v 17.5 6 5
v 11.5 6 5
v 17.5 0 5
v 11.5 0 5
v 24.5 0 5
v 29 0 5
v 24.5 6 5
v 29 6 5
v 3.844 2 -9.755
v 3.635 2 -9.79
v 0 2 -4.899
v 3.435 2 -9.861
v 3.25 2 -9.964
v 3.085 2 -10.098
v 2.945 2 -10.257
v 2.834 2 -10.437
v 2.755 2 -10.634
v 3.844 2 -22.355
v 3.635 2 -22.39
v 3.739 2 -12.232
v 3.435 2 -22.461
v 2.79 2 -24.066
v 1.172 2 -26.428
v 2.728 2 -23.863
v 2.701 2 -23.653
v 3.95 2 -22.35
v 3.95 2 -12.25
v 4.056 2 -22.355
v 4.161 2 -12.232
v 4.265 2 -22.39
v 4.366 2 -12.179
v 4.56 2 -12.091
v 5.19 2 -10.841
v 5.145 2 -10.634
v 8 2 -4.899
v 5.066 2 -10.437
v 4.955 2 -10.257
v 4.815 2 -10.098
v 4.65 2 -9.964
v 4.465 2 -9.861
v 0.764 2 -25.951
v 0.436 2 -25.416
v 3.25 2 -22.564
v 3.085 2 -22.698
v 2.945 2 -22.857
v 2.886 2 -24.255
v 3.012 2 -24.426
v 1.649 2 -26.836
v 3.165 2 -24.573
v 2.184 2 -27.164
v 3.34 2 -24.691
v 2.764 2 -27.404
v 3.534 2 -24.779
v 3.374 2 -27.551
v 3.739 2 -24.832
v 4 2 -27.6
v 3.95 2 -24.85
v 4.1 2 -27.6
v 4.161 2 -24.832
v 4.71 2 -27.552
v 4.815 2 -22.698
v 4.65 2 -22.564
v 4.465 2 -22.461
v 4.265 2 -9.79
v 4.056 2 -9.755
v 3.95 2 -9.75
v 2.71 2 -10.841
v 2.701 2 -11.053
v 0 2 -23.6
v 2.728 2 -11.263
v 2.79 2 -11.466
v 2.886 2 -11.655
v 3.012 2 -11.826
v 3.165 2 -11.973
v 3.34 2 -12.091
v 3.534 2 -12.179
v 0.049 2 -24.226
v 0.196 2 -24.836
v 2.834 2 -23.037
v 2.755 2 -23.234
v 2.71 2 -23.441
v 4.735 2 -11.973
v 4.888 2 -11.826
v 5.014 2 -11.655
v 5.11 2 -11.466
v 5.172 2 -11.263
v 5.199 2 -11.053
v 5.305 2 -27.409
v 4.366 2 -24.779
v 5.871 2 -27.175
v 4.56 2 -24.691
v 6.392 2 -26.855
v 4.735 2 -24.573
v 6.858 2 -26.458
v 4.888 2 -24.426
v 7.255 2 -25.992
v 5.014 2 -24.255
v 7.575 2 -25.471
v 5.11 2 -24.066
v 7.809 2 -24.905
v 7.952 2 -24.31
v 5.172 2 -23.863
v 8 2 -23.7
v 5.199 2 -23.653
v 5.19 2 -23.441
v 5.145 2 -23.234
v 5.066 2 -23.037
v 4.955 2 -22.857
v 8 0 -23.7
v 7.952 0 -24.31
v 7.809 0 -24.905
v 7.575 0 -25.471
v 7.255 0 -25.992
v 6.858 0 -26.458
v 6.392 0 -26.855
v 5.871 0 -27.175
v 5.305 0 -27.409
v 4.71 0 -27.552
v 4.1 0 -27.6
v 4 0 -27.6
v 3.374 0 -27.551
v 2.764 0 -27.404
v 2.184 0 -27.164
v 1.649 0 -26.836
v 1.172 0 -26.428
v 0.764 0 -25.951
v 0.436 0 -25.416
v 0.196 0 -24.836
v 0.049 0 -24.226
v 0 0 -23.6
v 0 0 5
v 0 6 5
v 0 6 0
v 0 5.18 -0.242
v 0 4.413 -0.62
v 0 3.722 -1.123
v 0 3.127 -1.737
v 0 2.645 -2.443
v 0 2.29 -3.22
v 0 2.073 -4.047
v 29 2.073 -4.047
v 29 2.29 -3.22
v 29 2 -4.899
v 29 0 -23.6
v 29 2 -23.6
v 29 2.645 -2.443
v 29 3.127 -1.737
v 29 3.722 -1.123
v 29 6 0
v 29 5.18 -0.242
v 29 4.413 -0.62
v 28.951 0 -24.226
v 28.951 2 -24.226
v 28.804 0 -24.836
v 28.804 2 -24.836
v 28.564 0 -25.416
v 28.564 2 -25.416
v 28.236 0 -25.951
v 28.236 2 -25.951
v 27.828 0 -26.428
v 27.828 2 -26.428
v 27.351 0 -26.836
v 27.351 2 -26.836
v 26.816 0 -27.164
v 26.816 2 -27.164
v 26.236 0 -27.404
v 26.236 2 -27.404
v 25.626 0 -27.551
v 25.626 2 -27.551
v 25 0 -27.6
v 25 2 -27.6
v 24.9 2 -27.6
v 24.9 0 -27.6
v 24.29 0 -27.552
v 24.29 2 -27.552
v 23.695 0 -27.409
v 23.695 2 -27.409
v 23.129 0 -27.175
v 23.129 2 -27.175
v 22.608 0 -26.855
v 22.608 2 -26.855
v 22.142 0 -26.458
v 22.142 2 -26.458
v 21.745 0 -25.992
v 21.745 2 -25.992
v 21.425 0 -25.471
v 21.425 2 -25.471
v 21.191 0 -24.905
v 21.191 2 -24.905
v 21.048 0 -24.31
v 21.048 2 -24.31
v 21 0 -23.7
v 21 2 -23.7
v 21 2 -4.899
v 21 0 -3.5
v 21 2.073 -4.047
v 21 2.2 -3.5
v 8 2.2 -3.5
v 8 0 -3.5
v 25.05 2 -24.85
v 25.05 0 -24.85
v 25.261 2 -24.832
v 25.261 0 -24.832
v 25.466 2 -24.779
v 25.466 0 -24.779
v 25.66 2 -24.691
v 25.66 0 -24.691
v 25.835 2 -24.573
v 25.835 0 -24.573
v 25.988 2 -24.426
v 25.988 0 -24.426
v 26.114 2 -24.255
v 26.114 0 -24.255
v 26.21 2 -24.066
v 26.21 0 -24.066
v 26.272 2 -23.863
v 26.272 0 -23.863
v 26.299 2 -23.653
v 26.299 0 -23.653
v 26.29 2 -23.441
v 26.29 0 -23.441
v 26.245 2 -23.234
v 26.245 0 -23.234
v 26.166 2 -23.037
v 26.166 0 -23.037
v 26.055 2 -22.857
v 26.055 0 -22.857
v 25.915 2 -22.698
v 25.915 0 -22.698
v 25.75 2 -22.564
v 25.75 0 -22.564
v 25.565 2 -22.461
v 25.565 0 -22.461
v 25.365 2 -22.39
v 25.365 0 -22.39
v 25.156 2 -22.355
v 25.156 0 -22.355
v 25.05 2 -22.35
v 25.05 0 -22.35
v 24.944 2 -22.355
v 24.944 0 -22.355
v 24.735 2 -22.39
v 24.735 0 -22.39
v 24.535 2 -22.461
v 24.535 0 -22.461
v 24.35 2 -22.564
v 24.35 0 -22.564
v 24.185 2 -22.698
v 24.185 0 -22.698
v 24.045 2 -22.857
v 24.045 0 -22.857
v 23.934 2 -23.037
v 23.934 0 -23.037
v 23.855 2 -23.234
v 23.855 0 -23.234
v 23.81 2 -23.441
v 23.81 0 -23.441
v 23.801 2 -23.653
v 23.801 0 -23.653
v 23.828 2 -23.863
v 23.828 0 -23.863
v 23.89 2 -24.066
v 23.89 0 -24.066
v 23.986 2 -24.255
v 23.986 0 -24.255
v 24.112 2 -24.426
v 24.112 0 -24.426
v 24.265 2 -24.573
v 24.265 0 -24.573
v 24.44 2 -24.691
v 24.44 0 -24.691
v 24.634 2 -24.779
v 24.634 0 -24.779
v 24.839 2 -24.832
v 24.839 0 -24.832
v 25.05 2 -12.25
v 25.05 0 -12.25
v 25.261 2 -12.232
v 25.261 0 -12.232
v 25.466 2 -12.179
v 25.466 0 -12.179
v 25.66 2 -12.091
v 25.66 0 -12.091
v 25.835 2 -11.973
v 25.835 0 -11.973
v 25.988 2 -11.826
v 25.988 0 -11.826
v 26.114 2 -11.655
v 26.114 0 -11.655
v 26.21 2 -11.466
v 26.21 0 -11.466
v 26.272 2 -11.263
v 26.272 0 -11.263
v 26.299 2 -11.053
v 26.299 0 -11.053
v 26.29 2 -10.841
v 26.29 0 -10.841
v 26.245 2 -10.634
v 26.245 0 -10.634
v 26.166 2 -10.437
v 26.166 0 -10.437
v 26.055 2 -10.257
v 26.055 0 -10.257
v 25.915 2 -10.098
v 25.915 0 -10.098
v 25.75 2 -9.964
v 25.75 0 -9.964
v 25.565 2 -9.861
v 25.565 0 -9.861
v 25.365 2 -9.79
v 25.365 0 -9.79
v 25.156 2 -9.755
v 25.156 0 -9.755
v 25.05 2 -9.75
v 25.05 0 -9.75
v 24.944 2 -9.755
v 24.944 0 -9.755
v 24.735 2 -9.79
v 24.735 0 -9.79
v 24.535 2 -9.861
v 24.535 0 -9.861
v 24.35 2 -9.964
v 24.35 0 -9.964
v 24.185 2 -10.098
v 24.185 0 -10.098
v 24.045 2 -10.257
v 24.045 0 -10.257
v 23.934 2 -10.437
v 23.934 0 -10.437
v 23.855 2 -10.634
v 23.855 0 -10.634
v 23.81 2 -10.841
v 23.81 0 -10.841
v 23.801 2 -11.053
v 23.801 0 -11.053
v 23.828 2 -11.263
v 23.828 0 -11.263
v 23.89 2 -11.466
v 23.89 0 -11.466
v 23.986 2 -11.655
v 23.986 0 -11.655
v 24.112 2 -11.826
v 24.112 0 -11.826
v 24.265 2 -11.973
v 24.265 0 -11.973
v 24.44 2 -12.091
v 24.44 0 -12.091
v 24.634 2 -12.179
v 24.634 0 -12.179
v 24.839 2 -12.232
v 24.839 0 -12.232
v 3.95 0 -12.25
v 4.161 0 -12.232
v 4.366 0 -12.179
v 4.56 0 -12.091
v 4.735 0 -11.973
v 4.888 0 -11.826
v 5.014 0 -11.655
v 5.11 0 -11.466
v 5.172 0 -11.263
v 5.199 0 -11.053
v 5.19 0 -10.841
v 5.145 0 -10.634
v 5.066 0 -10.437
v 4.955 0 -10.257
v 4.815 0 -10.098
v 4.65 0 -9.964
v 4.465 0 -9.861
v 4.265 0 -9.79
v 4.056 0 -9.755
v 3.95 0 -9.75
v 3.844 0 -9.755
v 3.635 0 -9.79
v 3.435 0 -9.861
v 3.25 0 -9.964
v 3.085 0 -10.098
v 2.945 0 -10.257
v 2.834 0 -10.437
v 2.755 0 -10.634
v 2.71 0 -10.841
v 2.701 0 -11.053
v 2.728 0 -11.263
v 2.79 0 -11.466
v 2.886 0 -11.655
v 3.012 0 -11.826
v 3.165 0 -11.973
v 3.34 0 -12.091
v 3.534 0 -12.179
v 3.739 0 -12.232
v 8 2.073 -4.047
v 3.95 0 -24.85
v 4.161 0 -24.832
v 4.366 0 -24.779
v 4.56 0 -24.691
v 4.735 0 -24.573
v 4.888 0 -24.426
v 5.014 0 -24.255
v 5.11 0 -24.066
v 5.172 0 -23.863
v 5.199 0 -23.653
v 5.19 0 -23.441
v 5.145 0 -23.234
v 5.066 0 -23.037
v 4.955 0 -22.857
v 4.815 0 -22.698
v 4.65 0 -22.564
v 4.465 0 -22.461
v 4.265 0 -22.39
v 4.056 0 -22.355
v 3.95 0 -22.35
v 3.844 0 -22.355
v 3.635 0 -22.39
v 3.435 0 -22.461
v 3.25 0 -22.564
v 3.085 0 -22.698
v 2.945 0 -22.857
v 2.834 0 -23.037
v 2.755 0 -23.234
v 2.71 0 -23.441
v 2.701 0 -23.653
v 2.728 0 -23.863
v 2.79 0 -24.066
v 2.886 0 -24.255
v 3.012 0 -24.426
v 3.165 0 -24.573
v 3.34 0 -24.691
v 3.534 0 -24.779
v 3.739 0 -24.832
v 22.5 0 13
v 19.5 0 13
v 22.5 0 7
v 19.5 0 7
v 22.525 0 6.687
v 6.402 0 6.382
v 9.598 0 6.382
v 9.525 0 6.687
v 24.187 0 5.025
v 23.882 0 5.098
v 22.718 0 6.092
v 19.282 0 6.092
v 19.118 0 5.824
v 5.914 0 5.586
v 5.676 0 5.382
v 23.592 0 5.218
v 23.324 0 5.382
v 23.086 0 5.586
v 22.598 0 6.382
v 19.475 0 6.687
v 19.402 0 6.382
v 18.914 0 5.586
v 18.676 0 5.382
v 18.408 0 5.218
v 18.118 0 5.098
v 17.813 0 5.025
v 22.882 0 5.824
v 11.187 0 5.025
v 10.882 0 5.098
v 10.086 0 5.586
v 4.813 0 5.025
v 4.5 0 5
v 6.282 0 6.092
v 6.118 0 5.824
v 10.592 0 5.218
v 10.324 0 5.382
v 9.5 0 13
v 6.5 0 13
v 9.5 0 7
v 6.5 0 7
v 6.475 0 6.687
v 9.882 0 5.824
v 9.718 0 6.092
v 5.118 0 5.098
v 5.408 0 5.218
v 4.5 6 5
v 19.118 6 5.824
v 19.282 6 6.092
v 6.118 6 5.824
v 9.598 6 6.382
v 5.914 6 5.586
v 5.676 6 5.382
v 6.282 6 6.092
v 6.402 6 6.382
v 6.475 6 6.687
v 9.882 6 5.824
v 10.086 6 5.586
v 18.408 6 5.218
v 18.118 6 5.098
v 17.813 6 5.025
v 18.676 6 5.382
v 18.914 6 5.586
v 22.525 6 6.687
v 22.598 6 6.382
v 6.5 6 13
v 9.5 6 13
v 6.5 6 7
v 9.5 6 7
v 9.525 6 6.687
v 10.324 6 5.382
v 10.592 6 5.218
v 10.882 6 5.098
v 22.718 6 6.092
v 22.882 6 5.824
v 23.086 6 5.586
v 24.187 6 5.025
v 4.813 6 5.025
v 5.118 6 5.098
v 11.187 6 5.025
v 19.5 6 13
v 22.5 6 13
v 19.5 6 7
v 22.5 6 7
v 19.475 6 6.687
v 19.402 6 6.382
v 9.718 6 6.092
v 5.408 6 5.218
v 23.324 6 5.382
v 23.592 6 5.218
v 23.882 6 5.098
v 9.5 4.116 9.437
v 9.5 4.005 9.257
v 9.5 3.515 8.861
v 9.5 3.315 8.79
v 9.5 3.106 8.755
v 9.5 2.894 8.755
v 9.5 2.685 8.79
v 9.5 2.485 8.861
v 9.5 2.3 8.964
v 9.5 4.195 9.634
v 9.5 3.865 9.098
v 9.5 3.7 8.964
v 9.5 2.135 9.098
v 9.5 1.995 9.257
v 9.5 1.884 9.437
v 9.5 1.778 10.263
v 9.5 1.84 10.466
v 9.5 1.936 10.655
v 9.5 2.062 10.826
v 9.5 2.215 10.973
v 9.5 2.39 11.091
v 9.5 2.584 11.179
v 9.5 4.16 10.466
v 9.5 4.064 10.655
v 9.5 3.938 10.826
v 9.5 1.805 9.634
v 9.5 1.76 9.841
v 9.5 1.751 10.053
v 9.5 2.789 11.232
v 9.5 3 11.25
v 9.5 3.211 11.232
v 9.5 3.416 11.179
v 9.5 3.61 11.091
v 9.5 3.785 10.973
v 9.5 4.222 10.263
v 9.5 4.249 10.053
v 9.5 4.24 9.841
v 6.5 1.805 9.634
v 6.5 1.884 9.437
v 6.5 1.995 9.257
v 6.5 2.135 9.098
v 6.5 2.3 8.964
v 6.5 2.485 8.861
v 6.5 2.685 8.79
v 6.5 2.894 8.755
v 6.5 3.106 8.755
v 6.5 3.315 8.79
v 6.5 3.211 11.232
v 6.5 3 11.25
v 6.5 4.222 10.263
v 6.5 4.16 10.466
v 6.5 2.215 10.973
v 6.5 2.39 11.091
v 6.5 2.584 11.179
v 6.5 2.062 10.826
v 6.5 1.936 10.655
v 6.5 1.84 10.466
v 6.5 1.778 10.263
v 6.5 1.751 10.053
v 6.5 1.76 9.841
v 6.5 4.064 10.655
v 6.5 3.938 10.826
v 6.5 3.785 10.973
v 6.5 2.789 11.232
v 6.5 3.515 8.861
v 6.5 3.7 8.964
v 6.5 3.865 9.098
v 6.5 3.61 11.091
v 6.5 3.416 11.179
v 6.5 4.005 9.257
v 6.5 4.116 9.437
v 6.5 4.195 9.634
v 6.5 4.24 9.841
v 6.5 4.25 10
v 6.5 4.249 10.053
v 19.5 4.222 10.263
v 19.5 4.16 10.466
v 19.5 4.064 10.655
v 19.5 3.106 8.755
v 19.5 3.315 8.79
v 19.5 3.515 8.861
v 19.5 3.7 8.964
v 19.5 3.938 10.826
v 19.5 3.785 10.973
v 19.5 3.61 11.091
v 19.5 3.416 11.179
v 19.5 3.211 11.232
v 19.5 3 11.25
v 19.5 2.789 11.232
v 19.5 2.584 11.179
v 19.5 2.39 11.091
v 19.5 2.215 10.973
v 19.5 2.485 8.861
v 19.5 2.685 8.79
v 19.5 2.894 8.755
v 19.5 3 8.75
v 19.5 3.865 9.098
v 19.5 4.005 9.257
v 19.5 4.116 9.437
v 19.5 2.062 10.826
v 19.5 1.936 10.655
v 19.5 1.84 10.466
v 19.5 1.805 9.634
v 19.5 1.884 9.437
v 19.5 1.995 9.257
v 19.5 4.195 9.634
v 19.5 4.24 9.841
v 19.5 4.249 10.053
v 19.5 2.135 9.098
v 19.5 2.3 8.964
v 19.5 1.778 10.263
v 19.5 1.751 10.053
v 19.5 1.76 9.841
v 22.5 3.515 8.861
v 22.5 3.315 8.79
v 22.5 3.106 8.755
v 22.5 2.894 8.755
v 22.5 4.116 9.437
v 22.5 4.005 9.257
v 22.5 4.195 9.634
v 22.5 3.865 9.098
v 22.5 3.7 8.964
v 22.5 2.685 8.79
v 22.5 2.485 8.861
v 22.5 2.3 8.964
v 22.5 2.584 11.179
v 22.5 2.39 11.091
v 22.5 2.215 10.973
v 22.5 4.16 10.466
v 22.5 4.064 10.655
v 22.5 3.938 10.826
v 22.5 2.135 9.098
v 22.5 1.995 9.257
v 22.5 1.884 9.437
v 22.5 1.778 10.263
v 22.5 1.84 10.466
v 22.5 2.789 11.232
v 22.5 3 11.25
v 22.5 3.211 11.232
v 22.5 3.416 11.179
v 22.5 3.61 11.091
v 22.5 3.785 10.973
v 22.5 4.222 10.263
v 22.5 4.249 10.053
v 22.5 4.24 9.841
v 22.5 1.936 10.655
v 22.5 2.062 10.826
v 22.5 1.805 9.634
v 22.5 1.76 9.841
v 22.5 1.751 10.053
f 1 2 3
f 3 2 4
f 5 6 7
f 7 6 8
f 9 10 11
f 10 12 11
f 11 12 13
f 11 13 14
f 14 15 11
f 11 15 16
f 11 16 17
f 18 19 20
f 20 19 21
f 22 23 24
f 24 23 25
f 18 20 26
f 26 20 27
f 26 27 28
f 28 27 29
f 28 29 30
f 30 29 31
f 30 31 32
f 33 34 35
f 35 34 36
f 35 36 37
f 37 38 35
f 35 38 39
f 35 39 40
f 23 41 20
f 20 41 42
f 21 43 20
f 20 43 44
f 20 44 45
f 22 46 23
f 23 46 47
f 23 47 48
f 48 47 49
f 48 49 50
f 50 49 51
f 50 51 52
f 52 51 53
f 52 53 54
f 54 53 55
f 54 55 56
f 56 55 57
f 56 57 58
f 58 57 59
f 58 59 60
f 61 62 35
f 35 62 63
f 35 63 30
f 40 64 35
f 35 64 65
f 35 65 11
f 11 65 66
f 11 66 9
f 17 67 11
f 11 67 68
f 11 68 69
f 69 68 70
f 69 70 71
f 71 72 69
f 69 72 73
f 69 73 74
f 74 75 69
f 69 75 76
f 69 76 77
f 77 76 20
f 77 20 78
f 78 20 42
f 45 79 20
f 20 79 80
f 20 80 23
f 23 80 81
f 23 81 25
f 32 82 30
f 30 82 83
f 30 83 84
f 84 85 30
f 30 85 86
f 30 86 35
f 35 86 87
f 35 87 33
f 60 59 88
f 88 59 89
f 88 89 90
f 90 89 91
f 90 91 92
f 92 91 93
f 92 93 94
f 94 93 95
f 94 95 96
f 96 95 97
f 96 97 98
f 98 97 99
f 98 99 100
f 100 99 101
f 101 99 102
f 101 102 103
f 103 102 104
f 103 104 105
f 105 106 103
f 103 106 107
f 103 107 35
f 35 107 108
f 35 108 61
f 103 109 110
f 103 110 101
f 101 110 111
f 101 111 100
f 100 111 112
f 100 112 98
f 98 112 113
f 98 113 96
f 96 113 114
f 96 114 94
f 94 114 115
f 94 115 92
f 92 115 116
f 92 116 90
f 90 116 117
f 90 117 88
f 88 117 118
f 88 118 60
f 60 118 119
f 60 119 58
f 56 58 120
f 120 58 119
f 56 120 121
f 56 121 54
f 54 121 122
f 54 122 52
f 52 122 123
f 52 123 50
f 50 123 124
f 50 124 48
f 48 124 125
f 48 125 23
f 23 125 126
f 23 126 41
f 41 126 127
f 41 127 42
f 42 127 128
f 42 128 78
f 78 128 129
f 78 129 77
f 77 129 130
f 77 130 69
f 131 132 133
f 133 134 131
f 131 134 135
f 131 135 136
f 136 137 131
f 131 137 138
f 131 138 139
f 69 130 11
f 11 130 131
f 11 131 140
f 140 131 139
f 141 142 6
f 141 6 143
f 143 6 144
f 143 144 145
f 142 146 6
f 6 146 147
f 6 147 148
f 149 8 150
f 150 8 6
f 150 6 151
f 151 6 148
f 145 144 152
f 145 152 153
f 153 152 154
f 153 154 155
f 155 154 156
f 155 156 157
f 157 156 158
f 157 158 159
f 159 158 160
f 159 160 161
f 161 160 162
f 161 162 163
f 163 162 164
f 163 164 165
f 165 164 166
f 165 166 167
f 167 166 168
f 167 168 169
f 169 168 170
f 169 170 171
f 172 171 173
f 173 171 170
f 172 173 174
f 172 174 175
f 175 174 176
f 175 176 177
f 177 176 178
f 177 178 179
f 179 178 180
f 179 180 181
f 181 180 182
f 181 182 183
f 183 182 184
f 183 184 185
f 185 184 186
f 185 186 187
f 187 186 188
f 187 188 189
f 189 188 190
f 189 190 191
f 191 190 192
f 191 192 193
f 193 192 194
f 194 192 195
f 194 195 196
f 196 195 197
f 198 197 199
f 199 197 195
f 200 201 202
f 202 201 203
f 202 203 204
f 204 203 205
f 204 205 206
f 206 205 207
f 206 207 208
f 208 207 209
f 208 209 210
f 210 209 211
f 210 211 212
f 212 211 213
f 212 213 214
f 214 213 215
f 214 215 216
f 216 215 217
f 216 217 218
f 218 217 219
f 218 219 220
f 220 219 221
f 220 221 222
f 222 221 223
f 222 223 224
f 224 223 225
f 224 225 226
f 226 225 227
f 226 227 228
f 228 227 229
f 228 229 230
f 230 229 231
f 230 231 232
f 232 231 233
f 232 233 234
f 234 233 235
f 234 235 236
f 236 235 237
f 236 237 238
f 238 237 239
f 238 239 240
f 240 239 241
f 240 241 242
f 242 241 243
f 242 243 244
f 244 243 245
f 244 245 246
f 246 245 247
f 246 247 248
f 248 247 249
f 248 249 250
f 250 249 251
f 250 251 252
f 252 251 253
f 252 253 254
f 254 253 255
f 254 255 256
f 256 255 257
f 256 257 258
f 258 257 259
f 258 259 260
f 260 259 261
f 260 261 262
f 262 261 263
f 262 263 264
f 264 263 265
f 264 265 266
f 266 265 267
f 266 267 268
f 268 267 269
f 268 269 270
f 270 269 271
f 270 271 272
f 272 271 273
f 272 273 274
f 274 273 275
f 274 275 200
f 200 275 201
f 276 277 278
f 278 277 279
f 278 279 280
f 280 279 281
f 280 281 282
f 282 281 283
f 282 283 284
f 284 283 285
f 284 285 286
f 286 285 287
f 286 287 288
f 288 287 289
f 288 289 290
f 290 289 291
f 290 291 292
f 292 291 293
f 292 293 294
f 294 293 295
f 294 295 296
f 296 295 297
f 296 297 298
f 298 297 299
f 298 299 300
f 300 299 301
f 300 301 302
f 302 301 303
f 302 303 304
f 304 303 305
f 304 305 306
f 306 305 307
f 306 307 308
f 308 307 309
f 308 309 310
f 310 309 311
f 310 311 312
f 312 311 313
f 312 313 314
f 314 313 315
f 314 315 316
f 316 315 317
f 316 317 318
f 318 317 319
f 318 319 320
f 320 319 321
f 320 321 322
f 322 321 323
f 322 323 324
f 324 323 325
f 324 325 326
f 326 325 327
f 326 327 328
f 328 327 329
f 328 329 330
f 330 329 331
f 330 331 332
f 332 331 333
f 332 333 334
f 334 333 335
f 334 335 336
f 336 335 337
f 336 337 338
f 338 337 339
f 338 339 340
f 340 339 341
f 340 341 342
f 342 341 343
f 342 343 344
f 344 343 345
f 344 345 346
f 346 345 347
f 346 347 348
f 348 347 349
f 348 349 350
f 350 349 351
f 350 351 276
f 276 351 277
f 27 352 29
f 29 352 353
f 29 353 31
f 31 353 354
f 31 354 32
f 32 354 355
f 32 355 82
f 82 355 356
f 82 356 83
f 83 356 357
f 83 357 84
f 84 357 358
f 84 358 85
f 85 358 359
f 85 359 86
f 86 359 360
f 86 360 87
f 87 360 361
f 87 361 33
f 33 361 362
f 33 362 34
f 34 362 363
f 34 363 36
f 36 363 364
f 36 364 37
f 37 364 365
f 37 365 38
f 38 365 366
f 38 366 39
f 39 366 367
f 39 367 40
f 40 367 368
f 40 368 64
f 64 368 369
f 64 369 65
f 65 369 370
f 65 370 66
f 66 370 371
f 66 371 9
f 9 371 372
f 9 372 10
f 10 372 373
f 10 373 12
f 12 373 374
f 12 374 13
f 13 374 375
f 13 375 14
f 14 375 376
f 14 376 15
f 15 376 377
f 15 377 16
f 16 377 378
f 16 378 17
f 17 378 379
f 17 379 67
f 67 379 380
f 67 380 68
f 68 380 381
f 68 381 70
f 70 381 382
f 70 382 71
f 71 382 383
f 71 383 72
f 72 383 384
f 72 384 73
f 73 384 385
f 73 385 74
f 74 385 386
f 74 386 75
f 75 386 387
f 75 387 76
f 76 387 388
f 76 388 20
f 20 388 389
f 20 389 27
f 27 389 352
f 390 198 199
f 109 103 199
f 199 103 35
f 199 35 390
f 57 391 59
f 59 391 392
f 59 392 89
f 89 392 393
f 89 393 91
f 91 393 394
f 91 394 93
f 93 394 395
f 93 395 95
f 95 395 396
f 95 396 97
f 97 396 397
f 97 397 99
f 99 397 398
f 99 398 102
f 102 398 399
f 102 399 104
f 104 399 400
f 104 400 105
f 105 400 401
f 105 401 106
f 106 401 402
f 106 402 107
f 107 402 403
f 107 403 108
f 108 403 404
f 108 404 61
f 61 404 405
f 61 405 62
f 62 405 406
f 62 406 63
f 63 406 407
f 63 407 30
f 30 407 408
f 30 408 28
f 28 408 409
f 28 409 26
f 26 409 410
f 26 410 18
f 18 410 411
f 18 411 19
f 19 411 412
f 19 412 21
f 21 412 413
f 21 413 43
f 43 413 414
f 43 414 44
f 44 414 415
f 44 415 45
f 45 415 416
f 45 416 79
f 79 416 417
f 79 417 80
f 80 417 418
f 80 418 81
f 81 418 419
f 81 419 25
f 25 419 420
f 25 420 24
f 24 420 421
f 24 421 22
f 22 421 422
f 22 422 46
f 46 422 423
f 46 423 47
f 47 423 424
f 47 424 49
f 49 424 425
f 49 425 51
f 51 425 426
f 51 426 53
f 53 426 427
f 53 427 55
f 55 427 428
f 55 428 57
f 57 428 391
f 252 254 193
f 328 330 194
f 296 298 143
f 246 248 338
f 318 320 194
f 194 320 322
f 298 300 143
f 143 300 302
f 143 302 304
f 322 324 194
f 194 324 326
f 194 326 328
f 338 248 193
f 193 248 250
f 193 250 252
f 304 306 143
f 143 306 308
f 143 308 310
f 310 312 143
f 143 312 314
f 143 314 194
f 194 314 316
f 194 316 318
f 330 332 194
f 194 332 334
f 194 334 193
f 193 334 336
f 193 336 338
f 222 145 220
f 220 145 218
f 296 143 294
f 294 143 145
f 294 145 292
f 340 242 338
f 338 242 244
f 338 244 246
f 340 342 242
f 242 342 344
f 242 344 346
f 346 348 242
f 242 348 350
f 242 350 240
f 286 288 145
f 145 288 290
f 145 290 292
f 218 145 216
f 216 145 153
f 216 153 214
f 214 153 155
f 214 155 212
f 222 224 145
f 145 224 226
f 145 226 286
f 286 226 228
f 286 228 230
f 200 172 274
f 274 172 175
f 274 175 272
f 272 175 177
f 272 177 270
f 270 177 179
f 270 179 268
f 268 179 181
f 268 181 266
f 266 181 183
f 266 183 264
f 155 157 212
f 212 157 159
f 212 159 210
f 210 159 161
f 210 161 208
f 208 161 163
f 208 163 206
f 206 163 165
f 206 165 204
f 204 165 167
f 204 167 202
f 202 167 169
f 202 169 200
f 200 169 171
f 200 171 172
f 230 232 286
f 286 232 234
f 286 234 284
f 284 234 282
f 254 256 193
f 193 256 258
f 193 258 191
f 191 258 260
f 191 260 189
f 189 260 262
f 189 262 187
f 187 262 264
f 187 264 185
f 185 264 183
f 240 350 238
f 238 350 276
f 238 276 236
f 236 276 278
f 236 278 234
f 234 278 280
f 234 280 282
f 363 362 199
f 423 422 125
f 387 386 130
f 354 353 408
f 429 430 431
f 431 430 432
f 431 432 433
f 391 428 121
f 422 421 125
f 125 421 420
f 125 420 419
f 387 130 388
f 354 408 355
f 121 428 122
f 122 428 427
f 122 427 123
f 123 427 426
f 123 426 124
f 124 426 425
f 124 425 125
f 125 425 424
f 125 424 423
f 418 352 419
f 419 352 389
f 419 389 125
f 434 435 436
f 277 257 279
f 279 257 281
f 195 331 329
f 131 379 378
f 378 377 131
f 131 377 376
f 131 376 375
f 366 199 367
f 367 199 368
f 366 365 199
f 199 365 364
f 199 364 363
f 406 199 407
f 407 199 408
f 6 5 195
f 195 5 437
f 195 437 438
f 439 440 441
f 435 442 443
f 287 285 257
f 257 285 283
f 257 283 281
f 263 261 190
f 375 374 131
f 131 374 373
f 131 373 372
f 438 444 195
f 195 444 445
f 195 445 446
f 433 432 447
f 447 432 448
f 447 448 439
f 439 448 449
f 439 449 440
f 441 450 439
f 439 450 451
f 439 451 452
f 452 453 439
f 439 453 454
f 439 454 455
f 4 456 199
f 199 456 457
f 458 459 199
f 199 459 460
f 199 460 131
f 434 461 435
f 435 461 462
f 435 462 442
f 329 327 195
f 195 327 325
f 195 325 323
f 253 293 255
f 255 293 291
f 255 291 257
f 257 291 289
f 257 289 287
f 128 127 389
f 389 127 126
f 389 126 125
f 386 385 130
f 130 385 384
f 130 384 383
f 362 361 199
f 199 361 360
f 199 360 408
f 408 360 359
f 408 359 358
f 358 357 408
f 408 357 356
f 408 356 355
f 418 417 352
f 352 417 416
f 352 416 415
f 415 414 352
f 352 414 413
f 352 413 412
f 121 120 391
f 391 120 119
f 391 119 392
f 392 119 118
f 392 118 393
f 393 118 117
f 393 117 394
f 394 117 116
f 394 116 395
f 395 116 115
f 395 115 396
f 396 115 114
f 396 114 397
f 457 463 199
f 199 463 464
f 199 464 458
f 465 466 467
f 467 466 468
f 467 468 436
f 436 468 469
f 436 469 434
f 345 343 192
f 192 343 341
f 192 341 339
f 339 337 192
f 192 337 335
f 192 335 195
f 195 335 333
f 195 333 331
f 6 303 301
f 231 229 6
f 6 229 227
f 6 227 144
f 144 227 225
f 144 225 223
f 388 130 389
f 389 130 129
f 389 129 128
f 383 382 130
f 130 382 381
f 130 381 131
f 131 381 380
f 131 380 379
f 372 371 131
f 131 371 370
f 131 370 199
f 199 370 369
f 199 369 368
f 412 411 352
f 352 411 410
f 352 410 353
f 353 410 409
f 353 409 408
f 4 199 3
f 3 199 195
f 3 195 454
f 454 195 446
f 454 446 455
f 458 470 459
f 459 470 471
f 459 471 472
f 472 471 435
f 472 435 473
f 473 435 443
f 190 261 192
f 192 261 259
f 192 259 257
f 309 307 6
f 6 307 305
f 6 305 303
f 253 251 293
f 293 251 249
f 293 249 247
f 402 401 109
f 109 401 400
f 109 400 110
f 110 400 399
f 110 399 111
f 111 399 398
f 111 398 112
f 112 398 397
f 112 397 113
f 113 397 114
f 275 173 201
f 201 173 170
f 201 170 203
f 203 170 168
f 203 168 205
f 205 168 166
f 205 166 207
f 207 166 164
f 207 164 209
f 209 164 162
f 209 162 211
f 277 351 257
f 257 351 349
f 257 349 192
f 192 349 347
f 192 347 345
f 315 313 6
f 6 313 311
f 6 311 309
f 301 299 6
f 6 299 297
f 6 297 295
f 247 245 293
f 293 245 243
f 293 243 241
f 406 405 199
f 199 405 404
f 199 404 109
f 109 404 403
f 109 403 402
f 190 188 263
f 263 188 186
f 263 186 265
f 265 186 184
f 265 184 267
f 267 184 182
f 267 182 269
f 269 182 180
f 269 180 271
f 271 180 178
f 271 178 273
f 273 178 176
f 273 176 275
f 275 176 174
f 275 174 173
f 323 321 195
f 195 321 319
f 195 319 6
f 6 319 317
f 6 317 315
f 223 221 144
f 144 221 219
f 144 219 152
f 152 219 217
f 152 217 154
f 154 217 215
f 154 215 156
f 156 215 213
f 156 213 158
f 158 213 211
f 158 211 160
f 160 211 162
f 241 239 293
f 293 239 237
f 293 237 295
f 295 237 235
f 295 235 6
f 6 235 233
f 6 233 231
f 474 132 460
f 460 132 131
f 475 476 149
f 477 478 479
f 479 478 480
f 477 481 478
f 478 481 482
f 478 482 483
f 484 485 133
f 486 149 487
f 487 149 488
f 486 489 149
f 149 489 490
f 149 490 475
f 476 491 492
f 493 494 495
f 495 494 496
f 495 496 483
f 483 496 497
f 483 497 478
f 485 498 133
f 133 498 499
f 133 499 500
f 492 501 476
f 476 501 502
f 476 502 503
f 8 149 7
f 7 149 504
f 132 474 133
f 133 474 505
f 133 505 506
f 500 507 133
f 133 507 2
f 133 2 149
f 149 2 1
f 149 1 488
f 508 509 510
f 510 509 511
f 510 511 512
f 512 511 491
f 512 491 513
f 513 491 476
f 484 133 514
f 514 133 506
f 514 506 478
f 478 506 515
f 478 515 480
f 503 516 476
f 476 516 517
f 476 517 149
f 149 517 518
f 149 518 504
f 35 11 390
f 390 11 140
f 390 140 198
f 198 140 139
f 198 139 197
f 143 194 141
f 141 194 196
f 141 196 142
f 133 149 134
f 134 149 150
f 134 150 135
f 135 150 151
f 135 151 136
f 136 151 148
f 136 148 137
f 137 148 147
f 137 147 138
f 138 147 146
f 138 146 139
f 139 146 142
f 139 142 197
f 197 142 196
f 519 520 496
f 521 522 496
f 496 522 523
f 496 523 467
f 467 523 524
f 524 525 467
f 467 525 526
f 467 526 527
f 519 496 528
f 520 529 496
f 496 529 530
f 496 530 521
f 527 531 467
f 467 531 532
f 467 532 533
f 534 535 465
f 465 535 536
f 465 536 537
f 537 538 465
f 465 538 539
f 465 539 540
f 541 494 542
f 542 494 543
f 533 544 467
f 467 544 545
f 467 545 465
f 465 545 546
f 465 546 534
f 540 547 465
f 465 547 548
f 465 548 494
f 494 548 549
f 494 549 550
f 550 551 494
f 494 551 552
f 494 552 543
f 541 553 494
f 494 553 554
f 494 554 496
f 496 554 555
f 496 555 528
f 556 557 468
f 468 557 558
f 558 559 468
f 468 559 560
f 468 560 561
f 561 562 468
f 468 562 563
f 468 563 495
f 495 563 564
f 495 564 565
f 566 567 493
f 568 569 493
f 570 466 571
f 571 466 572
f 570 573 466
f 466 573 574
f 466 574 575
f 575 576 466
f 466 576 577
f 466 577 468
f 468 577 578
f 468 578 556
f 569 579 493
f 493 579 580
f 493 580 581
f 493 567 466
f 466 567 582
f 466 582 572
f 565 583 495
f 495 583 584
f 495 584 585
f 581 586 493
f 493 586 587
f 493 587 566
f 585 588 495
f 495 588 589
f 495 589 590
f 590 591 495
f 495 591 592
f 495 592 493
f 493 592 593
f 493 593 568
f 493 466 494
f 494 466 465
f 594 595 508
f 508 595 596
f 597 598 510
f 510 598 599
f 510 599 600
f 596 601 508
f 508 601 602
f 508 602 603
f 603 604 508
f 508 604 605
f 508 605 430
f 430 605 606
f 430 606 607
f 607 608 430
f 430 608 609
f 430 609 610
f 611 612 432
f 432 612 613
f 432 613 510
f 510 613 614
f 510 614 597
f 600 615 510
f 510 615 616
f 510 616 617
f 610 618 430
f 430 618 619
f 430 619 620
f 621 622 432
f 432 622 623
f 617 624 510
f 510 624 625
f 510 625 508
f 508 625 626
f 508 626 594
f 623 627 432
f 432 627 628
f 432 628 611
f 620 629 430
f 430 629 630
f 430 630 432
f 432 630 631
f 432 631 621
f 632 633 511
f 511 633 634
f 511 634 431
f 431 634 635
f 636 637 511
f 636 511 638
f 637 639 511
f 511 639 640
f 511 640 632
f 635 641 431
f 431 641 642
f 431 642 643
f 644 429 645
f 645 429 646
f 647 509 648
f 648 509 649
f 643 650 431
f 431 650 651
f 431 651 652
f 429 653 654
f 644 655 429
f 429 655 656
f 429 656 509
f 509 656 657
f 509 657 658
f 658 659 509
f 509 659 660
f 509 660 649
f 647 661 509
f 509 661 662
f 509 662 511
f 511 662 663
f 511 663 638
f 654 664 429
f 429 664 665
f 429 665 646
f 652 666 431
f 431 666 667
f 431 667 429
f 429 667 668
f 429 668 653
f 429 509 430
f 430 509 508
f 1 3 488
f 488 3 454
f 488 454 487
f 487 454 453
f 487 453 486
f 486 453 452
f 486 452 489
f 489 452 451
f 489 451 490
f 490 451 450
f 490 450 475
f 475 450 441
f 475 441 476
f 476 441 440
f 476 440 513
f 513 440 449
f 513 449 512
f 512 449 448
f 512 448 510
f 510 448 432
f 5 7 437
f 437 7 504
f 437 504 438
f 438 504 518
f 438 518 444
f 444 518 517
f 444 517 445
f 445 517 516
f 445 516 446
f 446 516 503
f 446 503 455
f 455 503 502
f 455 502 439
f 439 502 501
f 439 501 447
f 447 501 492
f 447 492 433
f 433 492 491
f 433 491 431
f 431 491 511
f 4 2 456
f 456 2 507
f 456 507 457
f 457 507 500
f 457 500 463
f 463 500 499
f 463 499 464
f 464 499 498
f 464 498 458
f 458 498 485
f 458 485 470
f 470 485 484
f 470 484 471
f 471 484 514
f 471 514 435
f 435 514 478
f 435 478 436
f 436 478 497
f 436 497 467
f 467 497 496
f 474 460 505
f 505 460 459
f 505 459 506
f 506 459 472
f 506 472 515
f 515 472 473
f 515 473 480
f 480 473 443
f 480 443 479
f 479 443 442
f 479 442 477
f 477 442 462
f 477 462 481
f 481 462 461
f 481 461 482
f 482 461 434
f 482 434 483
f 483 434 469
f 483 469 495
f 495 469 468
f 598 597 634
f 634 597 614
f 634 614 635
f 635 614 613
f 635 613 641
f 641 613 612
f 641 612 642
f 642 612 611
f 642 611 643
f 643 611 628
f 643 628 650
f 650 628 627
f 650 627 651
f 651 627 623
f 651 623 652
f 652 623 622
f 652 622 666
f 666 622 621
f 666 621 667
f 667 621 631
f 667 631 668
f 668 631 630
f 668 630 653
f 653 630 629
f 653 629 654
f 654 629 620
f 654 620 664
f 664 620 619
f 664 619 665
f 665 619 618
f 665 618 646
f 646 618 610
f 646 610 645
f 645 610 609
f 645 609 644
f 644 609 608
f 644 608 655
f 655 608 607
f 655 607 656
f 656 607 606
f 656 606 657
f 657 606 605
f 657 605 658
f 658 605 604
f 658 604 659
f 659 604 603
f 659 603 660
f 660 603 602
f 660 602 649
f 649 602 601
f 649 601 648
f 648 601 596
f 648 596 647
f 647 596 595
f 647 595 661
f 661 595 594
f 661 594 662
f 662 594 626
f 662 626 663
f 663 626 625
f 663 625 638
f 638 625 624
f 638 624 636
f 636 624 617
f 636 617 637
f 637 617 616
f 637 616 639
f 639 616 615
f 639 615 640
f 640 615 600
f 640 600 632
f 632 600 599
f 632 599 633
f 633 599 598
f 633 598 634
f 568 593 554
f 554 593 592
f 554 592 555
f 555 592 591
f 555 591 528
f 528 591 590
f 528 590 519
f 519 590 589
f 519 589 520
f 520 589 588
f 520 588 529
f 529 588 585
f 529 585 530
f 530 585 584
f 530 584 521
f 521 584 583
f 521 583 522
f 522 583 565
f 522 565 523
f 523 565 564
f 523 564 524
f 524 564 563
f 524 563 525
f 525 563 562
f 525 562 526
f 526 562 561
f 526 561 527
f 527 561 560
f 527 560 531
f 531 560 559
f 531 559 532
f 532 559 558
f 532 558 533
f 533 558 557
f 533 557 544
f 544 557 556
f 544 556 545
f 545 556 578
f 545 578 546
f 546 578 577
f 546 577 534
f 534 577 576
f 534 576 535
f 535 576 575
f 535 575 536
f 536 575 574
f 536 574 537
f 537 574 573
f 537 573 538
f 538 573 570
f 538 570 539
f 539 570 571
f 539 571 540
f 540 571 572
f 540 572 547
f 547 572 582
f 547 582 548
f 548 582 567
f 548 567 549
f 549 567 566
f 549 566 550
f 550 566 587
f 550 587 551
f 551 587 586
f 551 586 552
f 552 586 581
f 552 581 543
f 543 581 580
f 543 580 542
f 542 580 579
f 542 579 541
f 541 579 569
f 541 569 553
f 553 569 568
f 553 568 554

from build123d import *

# Parameters (mm, degrees)
SKETCH1_R                = 1.25
BOSS_EXTRUDE1_DEPTH      = 2
BOSS_EXTRUDE2_DEPTH      = 4
BOSS_EXTRUDE2_DEPTH_BACK = 2
SKETCH2_W                = 29
SKETCH2_H                = 5
FILLET1_R                = 5
SKETCH3_W                = 3
SKETCH3_H                = 6
BOSS_EXTRUDE3_DEPTH      = 8
FILLET2_R                = 2
CUT_EXTRUDE1_DEPTH       = 15
CUT_EXTRUDE1_DEPTH_BACK  = 7
SKETCH4_R                = 1.25


with BuildPart() as part:
    # Sketch1 → Boss-Extrude1 (new body)
    with BuildSketch(Plane(origin=(0, 0, 0), x_dir=(1, 0, 0), z_dir=(0, 1, 0))):
        with BuildLine():
            Line((24.9, 27.6), (25, 27.6))
            ThreePointArc((25, 27.6), (27.828427125, 26.428427125), (29, 23.6))
            Line((29, 23.6), (29, 0))
            Line((29, 0), (0, 0))
            Line((0, 0), (0, 23.6))
            ThreePointArc((0, 23.6), (1.171572875, 26.428427125), (4, 27.6))
            Line((4, 27.6), (4.1, 27.6))
            ThreePointArc((4.1, 27.6), (6.857716447, 26.457716447), (8, 23.7))
            Line((8, 23.7), (8, 3.5))
            Line((8, 3.5), (21, 3.5))
            Line((21, 3.5), (21, 23.7))
            ThreePointArc((21, 23.7), (22.142283553, 26.457716447), (24.9, 27.6))
        make_face()
        with Locations(Location((3.95, 23.6, 0), (0, 0, 270))):
            Circle(SKETCH1_R, mode=Mode.SUBTRACT)
        with Locations(Location((25.05, 23.6, 0), (0, 0, 270))):
            Circle(SKETCH1_R, mode=Mode.SUBTRACT)
        with Locations(Location((25.05, 11, 0), (0, 0, 270))):
            Circle(SKETCH1_R, mode=Mode.SUBTRACT)
        with Locations(Location((3.95, 11, 0), (0, 0, 270))):
            Circle(SKETCH1_R, mode=Mode.SUBTRACT)
    extrude(amount=BOSS_EXTRUDE1_DEPTH)

    # Sketch2 → Boss-Extrude2 (add, two sides: drawn at the far end of the back side and taken through both)
    with BuildSketch(Plane(origin=(0, 2, 0), x_dir=(1, 0, 0), z_dir=(0, 1, 0)).offset(-BOSS_EXTRUDE2_DEPTH_BACK)):
        with Locations((14.5, -2.5)):
            Rectangle(SKETCH2_W, SKETCH2_H)
    extrude(amount=BOSS_EXTRUDE2_DEPTH + BOSS_EXTRUDE2_DEPTH_BACK)

    # Fillet1
    # the kernel refuses this fillet: 5 mm, written as the material it adds along each edge
    with BuildSketch(Plane(origin=(29, 2, 0), x_dir=(0, 0, -1), z_dir=(-1, 0, 0))) as fillet1_piece_1_section:
        with BuildLine():
            CenterArc((4.898979486, -5), FILLET1_R, 90, 78.463040967)
            Line((0, -4), (0, 0))
            Line((0, 0), (4.898979486, 0))
        make_face()
    fillet1_piece_1 = extrude(amount=41.247448714, mode=Mode.PRIVATE)
    fillet1_piece_1 = split(fillet1_piece_1, bisect_by=Plane(origin=(21, 2, 0), z_dir=(1, 0, 0)), keep=Keep.TOP, mode=Mode.PRIVATE)
    add(fillet1_piece_1)
    with BuildSketch(Plane(origin=(41.247448714, 2, 0), x_dir=(0, 0, -1), z_dir=(-1, 0, 0))) as fillet1_piece_2_section:
        with BuildLine():
            CenterArc((4.898979486, -5), FILLET1_R, 90, 78.463040967)
            Line((0, -4), (0, 0))
            Line((0, 0), (4.898979486, 0))
        make_face()
    fillet1_piece_2 = extrude(amount=41.247448714, mode=Mode.PRIVATE)
    fillet1_piece_2 = split(fillet1_piece_2, bisect_by=Plane(origin=(21, 2, 0), z_dir=(-1, 0, 0)), keep=Keep.TOP, mode=Mode.PRIVATE)
    fillet1_piece_2 = split(fillet1_piece_2, bisect_by=Plane(origin=(41.247448714, 2, -3.5), z_dir=(0, 0, 1)), keep=Keep.TOP, mode=Mode.PRIVATE)
    add(fillet1_piece_2)
    with BuildSketch(Plane(origin=(41.247448714, 2, 0), x_dir=(0, 0, -1), z_dir=(-1, 0, 0))) as fillet1_piece_3_section:
        with BuildLine():
            CenterArc((4.898979486, -5), FILLET1_R, 90, 78.463040967)
            Line((0, -4), (0, 0))
            Line((0, 0), (4.898979486, 0))
        make_face()
    fillet1_piece_3 = extrude(amount=41.247448714, mode=Mode.PRIVATE)
    fillet1_piece_3 = split(fillet1_piece_3, bisect_by=Plane(origin=(8, 2, 0), z_dir=(-1, 0, 0)), keep=Keep.TOP, mode=Mode.PRIVATE)
    add(fillet1_piece_3)

    # Sketch3 → Boss-Extrude3 (add)
    with BuildSketch(Plane.XY.offset(5)):
        with Locations((8, 3)):
            Rectangle(SKETCH3_W, SKETCH3_H)
        with Locations((21, 3)):
            Rectangle(SKETCH3_W, SKETCH3_H)
    extrude(amount=BOSS_EXTRUDE3_DEPTH)

    # Fillet2
    fillet2_edges = [part.edges().sort_by_distance(p)[0] for p in [
        (9.5, 3, 5),
        (6.5, 3, 5),
        (19.5, 3, 5),
        (22.5, 3, 5),
    ]]
    fillet(fillet2_edges, radius=FILLET2_R)

    # Sketch4 → Cut-Extrude1 (cut, two sides: drawn at the far end of the back side and taken through both)
    with BuildSketch(Plane(origin=(9.5, 0, 0), x_dir=(0, 0, -1), z_dir=(1, 0, 0)).offset(-CUT_EXTRUDE1_DEPTH_BACK)):
        with Locations(Location((-10, 3, 0), (0, 0, 180))):
            Circle(SKETCH4_R)
    extrude(amount=CUT_EXTRUDE1_DEPTH + CUT_EXTRUDE1_DEPTH_BACK, mode=Mode.SUBTRACT)


solid = part.part
